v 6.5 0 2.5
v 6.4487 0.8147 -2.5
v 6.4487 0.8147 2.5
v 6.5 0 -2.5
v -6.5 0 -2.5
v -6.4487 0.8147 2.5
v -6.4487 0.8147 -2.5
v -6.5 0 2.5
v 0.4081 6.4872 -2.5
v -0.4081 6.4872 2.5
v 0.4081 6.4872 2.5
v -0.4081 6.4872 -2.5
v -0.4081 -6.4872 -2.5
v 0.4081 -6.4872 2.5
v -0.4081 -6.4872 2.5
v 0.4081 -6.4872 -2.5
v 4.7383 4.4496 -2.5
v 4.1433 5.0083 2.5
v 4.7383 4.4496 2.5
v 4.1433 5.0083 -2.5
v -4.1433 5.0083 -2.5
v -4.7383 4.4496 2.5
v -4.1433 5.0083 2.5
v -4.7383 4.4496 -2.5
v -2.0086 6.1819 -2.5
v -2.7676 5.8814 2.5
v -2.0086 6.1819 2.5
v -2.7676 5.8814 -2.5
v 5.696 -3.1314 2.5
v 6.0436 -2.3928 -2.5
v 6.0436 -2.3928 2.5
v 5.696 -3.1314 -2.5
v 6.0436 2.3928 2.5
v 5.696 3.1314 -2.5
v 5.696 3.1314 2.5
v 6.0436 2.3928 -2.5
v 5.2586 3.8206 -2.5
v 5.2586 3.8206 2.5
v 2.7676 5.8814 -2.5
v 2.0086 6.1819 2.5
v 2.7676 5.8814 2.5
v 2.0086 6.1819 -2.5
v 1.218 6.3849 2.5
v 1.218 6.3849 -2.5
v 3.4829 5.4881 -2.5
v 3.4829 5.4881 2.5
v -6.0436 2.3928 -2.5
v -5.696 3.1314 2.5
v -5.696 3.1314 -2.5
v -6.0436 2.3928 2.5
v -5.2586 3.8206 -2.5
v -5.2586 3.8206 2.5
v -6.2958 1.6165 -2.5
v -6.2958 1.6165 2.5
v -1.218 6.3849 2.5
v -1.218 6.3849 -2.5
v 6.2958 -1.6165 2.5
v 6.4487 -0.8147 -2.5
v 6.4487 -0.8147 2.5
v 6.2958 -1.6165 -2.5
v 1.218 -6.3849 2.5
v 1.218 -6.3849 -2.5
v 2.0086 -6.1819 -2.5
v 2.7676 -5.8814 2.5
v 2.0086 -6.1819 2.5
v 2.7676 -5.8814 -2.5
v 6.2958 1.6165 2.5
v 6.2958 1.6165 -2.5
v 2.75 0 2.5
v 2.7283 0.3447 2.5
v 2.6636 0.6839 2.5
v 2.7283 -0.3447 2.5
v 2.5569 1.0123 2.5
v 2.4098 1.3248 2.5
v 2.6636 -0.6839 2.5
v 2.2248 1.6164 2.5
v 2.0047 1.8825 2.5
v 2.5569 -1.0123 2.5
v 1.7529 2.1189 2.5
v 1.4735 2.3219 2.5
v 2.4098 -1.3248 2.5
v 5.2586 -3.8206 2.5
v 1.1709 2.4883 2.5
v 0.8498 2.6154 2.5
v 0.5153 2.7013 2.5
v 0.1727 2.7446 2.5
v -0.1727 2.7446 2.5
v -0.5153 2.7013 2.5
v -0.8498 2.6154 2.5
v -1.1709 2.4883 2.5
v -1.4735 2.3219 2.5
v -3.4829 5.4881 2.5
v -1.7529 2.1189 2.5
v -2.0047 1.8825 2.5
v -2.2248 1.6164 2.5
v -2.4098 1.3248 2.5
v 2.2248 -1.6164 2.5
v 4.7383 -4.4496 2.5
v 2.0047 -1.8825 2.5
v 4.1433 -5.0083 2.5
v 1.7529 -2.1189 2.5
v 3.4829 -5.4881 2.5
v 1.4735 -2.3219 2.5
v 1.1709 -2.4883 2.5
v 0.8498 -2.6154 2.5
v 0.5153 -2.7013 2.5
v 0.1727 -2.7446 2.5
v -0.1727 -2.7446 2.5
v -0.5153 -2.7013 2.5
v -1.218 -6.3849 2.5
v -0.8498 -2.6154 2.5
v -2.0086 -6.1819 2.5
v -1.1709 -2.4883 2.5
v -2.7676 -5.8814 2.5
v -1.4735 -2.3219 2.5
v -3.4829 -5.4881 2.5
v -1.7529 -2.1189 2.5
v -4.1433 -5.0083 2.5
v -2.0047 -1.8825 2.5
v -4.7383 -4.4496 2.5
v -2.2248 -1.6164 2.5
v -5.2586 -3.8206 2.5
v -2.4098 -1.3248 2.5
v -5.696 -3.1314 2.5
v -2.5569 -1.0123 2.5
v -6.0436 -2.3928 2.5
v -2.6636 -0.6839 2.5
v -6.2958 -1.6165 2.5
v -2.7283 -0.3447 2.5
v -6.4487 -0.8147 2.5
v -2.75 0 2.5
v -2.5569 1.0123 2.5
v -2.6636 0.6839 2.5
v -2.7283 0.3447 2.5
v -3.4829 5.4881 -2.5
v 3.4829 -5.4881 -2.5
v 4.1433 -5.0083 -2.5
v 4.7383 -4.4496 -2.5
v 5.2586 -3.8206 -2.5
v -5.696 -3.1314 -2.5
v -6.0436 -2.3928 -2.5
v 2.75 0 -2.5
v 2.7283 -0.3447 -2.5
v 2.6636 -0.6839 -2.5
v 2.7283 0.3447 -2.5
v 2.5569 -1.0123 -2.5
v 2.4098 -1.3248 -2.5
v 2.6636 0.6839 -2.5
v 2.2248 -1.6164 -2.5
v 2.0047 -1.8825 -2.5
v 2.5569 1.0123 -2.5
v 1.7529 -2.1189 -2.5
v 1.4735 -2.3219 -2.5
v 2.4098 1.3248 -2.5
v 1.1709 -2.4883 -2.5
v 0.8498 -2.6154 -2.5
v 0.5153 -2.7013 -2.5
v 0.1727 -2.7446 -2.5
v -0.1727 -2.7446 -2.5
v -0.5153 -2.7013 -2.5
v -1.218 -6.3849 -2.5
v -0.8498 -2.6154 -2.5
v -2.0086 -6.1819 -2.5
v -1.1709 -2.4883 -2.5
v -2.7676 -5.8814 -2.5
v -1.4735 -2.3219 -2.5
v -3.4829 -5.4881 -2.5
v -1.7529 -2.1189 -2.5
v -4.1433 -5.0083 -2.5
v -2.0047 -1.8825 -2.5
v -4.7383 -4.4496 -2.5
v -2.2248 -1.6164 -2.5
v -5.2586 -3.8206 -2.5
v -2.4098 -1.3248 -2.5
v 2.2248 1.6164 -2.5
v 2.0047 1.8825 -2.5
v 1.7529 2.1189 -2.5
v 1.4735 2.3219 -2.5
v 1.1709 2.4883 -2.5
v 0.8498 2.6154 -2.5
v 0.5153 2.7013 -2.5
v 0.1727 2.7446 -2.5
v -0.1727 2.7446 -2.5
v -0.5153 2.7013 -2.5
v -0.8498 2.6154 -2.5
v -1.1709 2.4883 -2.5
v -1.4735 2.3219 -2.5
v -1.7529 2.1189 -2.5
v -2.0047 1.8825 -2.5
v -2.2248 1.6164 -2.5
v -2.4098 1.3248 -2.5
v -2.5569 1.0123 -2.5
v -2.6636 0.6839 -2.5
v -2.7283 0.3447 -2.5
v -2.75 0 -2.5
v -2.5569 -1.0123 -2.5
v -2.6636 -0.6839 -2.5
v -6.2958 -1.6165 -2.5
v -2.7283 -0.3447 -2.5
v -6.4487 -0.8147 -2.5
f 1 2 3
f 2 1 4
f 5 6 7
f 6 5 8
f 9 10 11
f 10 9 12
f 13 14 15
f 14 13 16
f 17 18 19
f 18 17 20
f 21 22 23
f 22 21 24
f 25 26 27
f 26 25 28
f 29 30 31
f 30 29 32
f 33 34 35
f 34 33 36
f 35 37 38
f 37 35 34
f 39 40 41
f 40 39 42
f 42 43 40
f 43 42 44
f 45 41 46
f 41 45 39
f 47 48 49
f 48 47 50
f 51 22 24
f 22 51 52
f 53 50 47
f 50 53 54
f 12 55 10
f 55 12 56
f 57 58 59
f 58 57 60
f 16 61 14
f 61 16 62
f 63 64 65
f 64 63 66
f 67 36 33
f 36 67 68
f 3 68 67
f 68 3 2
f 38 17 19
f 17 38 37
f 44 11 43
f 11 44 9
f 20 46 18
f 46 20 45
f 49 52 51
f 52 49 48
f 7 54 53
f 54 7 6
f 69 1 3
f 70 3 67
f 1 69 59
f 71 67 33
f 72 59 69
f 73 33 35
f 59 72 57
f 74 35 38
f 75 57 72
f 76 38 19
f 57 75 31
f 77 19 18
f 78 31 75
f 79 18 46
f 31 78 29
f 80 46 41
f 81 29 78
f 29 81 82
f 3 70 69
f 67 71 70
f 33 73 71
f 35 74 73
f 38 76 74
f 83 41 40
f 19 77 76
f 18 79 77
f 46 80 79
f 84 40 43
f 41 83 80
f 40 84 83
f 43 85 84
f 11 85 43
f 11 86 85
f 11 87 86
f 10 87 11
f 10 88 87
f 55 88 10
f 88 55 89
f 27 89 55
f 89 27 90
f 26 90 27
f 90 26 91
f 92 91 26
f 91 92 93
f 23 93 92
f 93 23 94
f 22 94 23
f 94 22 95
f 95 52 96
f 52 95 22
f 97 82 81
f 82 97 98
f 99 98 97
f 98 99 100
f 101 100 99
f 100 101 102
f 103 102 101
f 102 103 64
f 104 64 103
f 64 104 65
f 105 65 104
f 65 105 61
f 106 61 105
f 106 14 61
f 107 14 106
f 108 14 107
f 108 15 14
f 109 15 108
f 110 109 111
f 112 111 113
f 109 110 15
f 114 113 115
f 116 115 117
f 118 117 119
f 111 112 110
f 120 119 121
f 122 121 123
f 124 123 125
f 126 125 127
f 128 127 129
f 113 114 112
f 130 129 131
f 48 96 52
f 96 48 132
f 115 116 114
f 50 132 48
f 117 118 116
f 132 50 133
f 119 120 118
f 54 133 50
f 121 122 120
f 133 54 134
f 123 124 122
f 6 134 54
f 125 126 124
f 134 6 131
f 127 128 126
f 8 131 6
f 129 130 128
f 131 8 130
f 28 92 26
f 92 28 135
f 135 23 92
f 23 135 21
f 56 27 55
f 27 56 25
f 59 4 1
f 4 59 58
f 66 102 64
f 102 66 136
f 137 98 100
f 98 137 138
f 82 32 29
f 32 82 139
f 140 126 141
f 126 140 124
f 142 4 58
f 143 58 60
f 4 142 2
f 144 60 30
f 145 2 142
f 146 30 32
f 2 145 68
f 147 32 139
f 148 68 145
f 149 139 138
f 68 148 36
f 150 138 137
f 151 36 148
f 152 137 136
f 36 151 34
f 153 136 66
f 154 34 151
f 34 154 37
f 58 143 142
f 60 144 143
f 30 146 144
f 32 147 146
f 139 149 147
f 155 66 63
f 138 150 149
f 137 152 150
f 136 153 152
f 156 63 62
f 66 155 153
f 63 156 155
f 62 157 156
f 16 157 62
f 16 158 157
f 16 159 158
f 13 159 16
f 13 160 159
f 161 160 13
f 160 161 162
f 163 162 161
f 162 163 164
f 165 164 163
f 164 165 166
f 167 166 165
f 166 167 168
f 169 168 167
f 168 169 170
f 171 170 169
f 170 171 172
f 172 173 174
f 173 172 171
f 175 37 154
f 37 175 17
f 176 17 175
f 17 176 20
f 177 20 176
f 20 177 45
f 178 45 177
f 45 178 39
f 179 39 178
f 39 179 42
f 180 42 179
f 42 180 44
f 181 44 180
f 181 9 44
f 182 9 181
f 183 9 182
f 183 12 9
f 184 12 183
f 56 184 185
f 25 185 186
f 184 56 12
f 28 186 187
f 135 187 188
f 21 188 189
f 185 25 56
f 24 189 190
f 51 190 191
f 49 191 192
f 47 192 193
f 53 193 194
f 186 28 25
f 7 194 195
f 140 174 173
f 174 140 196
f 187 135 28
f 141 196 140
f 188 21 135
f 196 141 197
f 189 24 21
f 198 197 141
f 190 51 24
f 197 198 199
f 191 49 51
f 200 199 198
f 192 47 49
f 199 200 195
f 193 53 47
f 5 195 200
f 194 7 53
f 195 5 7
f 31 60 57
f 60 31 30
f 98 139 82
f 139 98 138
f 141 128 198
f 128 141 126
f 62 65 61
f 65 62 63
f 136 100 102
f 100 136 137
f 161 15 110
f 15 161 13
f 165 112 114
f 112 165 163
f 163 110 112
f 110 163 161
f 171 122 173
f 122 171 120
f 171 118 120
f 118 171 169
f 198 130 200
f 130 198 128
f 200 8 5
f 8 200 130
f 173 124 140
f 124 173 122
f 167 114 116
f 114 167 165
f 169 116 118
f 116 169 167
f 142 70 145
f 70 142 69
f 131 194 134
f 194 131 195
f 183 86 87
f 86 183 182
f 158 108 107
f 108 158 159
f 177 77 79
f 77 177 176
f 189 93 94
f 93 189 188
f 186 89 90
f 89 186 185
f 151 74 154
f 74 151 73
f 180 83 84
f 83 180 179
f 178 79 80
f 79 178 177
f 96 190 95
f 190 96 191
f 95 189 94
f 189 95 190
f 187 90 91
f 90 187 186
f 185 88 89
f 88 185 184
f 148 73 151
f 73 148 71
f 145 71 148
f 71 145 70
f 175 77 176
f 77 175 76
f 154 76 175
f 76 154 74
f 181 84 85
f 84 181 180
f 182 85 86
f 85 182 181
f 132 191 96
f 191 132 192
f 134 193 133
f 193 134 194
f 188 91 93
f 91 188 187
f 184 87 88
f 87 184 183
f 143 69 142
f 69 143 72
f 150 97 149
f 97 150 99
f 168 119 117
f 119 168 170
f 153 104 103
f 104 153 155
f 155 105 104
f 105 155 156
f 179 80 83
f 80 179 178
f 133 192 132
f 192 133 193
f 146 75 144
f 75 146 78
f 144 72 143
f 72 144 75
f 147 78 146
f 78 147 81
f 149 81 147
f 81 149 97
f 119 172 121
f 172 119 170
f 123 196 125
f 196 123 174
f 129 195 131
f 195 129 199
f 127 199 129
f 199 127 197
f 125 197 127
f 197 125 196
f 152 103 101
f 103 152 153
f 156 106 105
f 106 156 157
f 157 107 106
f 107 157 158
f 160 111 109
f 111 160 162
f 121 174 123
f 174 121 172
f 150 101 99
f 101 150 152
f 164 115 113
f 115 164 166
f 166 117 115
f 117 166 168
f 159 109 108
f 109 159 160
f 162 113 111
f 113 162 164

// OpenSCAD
$fn = 50;


difference() {
	union() {
		translate(v = [0, 0, -2.5000000000]) {
			cylinder(h = 5, r = 6.5000000000);
		}
	}
	union() {
		translate(v = [0, 0, -100.0000000000]) {
			cylinder(h = 200, r = 2.7500000000);
		}
	}
}
